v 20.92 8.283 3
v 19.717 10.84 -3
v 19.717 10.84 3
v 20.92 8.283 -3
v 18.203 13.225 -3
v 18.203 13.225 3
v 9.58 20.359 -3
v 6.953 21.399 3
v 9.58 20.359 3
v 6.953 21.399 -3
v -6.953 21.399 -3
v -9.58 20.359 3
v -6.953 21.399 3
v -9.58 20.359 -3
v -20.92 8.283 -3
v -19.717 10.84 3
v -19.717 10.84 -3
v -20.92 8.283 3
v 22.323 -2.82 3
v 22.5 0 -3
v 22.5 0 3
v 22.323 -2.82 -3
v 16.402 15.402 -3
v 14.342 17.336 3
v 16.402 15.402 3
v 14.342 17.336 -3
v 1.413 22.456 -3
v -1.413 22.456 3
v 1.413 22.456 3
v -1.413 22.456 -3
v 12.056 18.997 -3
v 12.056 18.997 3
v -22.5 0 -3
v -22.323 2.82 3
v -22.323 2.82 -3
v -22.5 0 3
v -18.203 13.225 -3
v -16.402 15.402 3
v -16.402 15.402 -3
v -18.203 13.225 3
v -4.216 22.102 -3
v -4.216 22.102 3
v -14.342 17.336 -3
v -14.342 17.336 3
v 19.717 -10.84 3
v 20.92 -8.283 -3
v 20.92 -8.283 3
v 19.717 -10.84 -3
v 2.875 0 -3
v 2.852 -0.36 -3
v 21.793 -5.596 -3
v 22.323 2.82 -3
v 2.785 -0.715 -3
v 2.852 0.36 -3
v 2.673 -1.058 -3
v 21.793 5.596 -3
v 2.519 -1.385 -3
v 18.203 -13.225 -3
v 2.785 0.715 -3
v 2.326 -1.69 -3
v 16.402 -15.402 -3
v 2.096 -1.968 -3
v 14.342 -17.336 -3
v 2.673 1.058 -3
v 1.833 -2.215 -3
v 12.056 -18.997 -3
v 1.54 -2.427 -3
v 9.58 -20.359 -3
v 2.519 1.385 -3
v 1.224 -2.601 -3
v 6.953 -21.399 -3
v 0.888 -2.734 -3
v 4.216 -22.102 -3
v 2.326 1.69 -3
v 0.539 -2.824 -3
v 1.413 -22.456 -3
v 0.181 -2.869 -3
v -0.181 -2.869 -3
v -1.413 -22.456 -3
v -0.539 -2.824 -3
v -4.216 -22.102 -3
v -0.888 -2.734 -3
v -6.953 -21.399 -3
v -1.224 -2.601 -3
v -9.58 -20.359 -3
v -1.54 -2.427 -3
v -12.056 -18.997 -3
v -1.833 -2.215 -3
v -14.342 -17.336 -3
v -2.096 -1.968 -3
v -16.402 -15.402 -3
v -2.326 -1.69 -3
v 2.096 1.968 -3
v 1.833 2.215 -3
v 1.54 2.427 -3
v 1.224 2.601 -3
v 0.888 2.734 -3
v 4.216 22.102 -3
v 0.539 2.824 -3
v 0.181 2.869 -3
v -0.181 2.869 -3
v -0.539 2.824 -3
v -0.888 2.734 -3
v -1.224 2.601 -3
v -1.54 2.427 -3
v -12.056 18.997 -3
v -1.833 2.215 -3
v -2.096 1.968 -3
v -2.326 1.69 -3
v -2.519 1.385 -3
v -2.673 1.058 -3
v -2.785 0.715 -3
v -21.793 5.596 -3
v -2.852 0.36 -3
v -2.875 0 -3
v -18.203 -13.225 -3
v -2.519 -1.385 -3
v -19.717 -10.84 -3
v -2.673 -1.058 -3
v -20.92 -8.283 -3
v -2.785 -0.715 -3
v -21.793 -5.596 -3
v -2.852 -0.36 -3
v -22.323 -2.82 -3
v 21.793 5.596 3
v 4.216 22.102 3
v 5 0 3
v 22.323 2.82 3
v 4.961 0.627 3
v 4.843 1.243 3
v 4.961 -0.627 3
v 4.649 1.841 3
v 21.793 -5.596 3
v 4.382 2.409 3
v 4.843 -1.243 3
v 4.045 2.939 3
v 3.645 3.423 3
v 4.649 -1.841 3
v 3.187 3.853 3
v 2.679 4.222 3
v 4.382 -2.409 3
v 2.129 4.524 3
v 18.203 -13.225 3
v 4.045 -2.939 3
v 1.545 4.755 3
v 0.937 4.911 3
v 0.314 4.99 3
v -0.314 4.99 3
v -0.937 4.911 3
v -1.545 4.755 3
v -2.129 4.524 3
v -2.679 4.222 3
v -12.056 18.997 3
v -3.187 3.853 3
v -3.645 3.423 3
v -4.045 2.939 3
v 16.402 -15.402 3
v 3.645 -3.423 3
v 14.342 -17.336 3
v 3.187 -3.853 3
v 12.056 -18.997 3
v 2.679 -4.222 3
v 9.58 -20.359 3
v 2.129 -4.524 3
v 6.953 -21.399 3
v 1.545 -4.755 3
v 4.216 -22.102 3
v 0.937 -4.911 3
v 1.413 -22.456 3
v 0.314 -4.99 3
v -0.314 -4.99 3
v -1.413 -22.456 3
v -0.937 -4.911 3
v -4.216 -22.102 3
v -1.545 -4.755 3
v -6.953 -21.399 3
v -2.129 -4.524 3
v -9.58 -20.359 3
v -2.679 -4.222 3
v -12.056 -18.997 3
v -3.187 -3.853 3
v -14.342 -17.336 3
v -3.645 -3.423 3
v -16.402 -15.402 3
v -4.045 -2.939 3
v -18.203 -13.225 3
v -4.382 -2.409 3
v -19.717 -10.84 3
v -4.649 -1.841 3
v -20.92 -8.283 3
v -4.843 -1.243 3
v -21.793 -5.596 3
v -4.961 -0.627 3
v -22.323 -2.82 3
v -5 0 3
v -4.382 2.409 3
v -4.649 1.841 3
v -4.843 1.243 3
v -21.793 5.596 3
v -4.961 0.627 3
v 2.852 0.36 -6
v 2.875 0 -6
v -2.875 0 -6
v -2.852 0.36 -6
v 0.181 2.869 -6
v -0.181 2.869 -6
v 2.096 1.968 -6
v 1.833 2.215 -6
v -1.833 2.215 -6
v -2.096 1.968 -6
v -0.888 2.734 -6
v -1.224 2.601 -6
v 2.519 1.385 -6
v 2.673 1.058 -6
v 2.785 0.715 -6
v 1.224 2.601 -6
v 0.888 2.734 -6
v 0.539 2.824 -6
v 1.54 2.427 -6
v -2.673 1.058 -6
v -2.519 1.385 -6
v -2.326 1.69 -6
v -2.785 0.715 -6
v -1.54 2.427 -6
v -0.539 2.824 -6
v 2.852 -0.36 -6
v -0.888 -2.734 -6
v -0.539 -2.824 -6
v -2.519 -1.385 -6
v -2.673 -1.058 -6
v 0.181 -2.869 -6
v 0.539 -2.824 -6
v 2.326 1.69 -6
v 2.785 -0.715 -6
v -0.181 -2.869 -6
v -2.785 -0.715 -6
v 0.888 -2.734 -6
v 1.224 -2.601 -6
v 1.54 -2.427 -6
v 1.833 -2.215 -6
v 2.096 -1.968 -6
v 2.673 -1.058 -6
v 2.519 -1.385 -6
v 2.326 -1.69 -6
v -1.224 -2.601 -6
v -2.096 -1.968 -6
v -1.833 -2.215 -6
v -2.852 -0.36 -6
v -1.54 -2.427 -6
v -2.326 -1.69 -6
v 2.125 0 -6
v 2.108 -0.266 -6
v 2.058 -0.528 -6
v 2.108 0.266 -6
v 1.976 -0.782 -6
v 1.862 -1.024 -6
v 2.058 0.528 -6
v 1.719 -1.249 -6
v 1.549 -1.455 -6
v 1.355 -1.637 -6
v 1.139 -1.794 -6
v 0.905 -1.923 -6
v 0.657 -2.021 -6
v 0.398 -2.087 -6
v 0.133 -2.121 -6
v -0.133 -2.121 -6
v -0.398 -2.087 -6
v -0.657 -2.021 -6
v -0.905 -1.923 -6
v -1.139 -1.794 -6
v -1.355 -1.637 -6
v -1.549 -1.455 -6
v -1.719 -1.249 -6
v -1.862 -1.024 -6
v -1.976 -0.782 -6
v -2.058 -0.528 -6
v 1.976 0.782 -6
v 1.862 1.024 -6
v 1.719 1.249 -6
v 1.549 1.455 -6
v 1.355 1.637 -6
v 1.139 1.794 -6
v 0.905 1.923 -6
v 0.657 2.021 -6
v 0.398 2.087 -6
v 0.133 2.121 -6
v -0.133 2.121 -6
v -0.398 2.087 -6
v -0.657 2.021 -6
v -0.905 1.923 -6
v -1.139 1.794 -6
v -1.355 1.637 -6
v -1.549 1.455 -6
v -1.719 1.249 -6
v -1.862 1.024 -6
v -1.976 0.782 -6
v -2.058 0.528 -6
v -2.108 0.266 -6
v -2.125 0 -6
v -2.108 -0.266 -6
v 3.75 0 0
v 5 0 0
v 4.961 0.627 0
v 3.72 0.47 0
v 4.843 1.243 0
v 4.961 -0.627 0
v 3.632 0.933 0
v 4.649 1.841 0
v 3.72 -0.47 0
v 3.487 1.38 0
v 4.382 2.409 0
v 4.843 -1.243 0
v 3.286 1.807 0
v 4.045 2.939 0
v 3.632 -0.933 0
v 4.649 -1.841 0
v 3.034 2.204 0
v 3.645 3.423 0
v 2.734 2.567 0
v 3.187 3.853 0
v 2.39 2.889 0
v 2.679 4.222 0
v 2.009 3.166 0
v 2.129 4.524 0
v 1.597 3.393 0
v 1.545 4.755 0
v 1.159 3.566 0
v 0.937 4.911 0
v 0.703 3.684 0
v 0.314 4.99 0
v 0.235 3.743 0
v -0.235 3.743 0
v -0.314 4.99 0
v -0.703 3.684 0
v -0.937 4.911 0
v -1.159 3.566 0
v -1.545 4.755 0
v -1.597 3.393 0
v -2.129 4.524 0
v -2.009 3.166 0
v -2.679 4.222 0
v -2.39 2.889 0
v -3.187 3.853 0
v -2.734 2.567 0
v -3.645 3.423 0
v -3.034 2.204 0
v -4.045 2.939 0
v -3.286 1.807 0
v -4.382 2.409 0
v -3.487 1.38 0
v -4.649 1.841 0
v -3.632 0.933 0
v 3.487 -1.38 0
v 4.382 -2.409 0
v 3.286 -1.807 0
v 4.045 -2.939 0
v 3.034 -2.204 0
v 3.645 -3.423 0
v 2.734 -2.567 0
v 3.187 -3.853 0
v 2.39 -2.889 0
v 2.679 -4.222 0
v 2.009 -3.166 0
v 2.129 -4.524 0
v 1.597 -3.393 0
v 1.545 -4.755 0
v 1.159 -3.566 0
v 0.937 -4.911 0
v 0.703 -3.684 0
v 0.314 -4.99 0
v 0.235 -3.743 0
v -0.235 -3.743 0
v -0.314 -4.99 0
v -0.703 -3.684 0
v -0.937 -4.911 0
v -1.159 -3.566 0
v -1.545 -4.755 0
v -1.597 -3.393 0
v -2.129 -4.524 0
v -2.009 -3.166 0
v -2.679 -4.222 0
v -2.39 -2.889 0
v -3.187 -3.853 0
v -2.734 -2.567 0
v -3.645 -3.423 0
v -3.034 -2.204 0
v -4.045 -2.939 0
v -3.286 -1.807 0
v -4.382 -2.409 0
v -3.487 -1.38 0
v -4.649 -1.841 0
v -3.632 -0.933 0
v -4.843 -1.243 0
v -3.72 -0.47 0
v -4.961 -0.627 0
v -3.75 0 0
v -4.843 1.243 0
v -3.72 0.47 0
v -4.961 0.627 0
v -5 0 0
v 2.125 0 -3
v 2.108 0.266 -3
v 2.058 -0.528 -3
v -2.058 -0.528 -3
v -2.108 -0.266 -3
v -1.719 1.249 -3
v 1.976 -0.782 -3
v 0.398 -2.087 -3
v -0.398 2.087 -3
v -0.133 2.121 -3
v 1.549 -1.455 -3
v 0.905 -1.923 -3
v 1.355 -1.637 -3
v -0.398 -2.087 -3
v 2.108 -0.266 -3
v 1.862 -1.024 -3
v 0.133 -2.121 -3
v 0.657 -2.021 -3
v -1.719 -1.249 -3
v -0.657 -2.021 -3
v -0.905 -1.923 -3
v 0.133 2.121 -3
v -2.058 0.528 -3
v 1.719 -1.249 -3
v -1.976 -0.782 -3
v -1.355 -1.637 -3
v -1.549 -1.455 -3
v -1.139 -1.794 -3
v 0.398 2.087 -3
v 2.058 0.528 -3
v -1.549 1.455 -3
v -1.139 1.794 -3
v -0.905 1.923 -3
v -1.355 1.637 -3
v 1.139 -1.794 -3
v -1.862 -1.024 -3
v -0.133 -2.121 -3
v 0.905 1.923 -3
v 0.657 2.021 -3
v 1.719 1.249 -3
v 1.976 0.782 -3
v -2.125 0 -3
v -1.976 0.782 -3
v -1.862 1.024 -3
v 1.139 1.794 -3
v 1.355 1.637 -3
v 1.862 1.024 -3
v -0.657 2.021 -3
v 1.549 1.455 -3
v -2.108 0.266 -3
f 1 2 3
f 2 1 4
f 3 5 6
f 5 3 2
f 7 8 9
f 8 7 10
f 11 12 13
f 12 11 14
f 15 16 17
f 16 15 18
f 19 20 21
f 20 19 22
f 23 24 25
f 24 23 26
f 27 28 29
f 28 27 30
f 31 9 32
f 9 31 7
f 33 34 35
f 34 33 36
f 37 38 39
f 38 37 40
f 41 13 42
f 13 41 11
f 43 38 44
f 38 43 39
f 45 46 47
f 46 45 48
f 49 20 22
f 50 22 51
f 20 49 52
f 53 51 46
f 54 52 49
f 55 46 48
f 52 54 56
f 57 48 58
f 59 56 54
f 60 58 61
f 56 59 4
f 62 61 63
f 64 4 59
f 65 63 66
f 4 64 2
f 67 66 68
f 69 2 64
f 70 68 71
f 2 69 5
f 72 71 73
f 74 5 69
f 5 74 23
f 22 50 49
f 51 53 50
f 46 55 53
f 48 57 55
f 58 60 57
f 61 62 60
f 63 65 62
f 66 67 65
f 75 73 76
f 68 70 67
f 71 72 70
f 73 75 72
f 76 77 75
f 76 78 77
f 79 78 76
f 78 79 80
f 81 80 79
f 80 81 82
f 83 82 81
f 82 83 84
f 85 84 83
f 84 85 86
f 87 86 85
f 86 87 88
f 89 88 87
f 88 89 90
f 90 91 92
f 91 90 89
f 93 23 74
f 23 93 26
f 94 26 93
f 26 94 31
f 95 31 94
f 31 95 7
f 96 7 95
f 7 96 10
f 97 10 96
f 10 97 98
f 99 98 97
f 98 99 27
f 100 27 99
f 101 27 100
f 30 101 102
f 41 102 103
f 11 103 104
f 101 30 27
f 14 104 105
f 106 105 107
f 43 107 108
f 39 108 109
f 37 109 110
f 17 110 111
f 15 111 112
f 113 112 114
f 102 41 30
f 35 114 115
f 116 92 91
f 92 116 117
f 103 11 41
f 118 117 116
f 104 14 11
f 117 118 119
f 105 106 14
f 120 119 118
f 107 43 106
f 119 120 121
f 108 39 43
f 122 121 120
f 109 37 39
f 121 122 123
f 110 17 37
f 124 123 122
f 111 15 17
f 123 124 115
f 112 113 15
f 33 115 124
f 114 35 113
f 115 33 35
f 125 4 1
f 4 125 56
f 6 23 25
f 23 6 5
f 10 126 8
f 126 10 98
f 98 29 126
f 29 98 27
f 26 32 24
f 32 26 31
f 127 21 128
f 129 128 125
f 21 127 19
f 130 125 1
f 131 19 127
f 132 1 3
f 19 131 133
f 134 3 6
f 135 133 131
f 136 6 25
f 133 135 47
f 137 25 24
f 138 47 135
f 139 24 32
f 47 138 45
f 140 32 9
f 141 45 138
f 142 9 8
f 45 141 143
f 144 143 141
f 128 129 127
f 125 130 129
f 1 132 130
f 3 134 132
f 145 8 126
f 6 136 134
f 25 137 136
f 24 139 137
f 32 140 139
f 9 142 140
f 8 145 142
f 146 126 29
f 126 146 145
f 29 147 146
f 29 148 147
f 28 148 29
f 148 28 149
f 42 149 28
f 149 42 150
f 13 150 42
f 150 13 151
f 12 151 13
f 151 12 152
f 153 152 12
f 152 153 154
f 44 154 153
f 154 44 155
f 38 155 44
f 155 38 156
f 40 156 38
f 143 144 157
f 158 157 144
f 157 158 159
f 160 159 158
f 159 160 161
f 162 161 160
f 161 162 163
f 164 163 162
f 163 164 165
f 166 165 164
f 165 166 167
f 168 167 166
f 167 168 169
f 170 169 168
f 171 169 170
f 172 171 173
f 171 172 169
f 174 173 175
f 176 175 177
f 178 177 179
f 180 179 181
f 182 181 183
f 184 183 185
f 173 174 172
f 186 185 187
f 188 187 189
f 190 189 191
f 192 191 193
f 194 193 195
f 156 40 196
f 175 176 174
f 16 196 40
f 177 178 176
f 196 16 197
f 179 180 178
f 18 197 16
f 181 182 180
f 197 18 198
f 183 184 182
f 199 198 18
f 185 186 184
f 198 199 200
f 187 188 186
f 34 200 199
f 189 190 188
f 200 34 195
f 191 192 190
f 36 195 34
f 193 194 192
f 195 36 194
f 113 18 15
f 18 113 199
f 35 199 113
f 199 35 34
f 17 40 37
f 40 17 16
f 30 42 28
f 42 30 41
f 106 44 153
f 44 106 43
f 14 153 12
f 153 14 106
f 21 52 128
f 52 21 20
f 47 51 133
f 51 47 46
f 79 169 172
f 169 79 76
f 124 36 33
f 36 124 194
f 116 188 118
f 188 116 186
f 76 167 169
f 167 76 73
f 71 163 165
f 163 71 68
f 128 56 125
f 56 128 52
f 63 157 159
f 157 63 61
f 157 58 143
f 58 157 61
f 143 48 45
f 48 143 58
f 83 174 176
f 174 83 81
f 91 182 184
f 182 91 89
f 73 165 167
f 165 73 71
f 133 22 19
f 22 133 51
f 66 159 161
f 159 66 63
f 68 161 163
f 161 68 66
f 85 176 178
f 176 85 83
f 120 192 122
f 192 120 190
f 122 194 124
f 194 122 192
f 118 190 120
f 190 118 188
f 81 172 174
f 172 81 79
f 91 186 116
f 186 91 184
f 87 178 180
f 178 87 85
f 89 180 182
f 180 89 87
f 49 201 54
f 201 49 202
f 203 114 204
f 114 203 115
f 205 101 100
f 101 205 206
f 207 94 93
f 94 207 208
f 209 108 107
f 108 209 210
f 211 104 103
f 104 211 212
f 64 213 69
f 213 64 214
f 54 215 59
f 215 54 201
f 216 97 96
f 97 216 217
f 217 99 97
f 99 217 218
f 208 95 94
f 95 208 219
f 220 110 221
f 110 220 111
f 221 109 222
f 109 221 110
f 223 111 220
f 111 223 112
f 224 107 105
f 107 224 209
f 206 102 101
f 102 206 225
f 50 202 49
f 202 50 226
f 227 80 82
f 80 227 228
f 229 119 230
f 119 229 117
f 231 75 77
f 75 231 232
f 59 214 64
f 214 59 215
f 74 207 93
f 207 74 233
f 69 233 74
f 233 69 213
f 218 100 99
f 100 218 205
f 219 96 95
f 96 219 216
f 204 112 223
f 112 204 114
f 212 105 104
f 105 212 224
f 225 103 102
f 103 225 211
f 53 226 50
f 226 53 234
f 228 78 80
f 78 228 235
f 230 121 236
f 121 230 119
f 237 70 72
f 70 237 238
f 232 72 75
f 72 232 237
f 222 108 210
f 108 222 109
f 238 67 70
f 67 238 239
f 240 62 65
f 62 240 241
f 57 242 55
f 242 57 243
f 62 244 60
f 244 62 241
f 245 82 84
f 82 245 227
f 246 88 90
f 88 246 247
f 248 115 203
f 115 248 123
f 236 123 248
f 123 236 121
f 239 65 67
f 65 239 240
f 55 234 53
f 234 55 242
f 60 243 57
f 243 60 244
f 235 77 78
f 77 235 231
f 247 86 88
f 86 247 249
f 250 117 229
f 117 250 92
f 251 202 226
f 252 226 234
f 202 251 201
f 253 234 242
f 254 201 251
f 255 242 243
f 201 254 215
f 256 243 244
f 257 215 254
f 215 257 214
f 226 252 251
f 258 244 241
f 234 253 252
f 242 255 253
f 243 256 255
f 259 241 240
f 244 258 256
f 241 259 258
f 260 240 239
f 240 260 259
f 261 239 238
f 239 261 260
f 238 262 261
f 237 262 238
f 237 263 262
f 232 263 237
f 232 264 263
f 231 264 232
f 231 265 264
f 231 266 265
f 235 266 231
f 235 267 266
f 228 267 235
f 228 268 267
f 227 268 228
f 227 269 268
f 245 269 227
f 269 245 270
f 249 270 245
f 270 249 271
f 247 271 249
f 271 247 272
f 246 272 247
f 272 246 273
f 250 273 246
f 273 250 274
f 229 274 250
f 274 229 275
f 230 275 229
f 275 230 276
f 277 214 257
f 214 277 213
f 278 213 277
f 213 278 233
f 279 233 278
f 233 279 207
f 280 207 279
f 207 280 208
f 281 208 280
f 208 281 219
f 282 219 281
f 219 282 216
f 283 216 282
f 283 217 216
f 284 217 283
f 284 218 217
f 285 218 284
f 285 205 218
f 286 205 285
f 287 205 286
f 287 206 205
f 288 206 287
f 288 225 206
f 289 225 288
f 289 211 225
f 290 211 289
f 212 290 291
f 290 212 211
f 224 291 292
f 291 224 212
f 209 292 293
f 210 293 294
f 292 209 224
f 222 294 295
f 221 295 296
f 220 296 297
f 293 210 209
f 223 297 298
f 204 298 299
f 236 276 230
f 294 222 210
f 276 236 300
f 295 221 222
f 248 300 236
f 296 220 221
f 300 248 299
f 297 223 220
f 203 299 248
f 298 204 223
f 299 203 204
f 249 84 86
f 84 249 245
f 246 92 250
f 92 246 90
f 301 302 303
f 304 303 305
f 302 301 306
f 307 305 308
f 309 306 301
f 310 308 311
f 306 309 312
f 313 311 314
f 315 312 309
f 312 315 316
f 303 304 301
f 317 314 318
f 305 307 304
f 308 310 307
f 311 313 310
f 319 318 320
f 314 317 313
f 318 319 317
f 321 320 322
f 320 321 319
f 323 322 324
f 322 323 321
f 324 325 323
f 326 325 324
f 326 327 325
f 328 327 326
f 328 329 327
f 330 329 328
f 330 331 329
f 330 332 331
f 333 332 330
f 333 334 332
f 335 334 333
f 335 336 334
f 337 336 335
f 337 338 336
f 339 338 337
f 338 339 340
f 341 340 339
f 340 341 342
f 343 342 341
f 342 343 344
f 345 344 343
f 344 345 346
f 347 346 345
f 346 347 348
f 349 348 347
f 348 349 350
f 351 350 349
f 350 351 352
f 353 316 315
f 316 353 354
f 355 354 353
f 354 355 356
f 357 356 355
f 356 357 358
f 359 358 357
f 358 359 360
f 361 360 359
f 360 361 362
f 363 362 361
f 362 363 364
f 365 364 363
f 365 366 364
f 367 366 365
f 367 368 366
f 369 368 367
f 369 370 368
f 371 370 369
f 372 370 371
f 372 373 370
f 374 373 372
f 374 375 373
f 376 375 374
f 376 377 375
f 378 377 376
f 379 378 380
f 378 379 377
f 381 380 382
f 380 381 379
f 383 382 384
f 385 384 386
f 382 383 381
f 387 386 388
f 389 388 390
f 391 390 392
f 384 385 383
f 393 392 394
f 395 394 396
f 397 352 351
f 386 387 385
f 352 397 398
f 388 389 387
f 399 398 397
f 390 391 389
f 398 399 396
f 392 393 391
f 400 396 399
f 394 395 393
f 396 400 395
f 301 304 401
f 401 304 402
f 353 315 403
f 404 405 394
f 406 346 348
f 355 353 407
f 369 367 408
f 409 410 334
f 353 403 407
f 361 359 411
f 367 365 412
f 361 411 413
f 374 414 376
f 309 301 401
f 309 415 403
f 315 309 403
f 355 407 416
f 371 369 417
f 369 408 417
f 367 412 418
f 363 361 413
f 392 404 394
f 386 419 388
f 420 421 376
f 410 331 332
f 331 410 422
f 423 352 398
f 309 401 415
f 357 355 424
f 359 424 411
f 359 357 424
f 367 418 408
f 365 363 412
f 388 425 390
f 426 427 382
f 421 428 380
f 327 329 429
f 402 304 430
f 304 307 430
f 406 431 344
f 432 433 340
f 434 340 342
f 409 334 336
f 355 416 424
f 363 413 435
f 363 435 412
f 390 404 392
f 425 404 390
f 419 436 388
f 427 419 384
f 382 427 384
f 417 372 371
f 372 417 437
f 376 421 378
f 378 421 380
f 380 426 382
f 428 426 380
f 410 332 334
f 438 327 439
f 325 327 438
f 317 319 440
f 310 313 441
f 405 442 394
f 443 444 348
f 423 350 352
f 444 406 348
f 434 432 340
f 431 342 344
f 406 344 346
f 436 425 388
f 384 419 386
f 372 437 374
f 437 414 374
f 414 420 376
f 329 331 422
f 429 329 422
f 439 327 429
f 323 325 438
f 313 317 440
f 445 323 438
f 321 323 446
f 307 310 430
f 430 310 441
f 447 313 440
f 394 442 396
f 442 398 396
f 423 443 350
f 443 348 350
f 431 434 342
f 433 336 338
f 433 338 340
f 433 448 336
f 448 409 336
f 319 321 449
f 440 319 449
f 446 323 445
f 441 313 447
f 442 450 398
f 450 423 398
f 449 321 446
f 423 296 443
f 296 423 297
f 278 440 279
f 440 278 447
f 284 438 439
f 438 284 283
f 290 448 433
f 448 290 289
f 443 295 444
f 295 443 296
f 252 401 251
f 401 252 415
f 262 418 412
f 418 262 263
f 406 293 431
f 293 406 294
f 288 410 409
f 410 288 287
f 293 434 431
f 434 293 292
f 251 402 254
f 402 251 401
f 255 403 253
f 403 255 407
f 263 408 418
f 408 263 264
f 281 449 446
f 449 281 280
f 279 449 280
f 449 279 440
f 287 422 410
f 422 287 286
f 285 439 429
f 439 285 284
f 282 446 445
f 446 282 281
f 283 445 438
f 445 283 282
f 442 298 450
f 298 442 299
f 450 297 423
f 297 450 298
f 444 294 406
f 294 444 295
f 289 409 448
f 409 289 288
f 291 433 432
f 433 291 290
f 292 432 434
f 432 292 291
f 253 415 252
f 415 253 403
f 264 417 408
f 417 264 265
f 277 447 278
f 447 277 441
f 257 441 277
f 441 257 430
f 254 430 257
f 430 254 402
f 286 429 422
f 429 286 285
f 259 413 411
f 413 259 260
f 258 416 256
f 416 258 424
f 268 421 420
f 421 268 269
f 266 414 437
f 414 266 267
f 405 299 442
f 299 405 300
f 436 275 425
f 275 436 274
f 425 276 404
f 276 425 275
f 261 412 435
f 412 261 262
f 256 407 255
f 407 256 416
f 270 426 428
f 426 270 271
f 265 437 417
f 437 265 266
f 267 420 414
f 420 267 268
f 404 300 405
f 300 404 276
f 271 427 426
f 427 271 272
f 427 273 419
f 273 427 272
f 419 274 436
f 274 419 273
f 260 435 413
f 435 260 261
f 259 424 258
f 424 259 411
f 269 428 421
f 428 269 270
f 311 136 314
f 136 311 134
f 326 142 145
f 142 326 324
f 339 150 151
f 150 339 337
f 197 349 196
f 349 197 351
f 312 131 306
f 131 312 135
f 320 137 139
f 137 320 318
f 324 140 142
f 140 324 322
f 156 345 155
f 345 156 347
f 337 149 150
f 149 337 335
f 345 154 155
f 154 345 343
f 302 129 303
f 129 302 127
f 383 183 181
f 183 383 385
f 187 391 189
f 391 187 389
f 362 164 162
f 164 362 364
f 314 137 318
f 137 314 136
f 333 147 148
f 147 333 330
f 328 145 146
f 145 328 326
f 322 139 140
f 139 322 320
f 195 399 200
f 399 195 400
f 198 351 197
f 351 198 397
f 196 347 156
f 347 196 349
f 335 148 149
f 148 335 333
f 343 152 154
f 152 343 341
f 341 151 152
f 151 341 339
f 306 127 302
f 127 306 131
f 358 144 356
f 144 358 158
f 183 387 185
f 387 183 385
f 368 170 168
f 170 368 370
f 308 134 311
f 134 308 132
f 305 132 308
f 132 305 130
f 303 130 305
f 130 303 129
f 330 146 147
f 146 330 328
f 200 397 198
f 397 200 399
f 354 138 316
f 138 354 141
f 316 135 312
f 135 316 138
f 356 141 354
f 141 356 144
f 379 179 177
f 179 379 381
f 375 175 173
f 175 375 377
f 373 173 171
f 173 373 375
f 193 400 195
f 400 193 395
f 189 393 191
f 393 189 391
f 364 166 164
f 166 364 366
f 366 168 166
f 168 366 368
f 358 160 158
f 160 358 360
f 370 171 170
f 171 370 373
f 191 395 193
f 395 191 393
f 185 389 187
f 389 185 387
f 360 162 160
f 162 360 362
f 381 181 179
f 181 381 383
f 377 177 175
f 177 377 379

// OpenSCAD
$fn = 50;


difference() {
	union() {
		translate(v = [0, 0, -3.0000000000]) {
			cylinder(h = 6, r = 22.5000000000);
		}
		#translate(v = [0, 0, -6.0000000000]) {
			cylinder(h = 6, r = 2.8750000000);
		}
	}
	union() {
		translate(v = [0, 0, 0]) {
			rotate(a = [0, 0, 0]) {
				difference() {
					union() {
						translate(v = [0, 0, -6.0000000000]) {
							cylinder(h = 6, r = 2.0000000000);
						}
						translate(v = [0, 0, -3]) {
							cylinder(h = 3, r1 = 2.1250000000, r2 = 3.7500000000);
						}
						translate(v = [0, 0, -6.0000000000]) {
							cylinder(h = 6, r = 2.1250000000);
						}
						translate(v = [0, 0, -6.0000000000]) {
							cylinder(h = 6, r = 2.0000000000);
						}
					}
					union();
				}
			}
		}
		#cylinder(h = 3, r = 5.0000000000);
	}
}
